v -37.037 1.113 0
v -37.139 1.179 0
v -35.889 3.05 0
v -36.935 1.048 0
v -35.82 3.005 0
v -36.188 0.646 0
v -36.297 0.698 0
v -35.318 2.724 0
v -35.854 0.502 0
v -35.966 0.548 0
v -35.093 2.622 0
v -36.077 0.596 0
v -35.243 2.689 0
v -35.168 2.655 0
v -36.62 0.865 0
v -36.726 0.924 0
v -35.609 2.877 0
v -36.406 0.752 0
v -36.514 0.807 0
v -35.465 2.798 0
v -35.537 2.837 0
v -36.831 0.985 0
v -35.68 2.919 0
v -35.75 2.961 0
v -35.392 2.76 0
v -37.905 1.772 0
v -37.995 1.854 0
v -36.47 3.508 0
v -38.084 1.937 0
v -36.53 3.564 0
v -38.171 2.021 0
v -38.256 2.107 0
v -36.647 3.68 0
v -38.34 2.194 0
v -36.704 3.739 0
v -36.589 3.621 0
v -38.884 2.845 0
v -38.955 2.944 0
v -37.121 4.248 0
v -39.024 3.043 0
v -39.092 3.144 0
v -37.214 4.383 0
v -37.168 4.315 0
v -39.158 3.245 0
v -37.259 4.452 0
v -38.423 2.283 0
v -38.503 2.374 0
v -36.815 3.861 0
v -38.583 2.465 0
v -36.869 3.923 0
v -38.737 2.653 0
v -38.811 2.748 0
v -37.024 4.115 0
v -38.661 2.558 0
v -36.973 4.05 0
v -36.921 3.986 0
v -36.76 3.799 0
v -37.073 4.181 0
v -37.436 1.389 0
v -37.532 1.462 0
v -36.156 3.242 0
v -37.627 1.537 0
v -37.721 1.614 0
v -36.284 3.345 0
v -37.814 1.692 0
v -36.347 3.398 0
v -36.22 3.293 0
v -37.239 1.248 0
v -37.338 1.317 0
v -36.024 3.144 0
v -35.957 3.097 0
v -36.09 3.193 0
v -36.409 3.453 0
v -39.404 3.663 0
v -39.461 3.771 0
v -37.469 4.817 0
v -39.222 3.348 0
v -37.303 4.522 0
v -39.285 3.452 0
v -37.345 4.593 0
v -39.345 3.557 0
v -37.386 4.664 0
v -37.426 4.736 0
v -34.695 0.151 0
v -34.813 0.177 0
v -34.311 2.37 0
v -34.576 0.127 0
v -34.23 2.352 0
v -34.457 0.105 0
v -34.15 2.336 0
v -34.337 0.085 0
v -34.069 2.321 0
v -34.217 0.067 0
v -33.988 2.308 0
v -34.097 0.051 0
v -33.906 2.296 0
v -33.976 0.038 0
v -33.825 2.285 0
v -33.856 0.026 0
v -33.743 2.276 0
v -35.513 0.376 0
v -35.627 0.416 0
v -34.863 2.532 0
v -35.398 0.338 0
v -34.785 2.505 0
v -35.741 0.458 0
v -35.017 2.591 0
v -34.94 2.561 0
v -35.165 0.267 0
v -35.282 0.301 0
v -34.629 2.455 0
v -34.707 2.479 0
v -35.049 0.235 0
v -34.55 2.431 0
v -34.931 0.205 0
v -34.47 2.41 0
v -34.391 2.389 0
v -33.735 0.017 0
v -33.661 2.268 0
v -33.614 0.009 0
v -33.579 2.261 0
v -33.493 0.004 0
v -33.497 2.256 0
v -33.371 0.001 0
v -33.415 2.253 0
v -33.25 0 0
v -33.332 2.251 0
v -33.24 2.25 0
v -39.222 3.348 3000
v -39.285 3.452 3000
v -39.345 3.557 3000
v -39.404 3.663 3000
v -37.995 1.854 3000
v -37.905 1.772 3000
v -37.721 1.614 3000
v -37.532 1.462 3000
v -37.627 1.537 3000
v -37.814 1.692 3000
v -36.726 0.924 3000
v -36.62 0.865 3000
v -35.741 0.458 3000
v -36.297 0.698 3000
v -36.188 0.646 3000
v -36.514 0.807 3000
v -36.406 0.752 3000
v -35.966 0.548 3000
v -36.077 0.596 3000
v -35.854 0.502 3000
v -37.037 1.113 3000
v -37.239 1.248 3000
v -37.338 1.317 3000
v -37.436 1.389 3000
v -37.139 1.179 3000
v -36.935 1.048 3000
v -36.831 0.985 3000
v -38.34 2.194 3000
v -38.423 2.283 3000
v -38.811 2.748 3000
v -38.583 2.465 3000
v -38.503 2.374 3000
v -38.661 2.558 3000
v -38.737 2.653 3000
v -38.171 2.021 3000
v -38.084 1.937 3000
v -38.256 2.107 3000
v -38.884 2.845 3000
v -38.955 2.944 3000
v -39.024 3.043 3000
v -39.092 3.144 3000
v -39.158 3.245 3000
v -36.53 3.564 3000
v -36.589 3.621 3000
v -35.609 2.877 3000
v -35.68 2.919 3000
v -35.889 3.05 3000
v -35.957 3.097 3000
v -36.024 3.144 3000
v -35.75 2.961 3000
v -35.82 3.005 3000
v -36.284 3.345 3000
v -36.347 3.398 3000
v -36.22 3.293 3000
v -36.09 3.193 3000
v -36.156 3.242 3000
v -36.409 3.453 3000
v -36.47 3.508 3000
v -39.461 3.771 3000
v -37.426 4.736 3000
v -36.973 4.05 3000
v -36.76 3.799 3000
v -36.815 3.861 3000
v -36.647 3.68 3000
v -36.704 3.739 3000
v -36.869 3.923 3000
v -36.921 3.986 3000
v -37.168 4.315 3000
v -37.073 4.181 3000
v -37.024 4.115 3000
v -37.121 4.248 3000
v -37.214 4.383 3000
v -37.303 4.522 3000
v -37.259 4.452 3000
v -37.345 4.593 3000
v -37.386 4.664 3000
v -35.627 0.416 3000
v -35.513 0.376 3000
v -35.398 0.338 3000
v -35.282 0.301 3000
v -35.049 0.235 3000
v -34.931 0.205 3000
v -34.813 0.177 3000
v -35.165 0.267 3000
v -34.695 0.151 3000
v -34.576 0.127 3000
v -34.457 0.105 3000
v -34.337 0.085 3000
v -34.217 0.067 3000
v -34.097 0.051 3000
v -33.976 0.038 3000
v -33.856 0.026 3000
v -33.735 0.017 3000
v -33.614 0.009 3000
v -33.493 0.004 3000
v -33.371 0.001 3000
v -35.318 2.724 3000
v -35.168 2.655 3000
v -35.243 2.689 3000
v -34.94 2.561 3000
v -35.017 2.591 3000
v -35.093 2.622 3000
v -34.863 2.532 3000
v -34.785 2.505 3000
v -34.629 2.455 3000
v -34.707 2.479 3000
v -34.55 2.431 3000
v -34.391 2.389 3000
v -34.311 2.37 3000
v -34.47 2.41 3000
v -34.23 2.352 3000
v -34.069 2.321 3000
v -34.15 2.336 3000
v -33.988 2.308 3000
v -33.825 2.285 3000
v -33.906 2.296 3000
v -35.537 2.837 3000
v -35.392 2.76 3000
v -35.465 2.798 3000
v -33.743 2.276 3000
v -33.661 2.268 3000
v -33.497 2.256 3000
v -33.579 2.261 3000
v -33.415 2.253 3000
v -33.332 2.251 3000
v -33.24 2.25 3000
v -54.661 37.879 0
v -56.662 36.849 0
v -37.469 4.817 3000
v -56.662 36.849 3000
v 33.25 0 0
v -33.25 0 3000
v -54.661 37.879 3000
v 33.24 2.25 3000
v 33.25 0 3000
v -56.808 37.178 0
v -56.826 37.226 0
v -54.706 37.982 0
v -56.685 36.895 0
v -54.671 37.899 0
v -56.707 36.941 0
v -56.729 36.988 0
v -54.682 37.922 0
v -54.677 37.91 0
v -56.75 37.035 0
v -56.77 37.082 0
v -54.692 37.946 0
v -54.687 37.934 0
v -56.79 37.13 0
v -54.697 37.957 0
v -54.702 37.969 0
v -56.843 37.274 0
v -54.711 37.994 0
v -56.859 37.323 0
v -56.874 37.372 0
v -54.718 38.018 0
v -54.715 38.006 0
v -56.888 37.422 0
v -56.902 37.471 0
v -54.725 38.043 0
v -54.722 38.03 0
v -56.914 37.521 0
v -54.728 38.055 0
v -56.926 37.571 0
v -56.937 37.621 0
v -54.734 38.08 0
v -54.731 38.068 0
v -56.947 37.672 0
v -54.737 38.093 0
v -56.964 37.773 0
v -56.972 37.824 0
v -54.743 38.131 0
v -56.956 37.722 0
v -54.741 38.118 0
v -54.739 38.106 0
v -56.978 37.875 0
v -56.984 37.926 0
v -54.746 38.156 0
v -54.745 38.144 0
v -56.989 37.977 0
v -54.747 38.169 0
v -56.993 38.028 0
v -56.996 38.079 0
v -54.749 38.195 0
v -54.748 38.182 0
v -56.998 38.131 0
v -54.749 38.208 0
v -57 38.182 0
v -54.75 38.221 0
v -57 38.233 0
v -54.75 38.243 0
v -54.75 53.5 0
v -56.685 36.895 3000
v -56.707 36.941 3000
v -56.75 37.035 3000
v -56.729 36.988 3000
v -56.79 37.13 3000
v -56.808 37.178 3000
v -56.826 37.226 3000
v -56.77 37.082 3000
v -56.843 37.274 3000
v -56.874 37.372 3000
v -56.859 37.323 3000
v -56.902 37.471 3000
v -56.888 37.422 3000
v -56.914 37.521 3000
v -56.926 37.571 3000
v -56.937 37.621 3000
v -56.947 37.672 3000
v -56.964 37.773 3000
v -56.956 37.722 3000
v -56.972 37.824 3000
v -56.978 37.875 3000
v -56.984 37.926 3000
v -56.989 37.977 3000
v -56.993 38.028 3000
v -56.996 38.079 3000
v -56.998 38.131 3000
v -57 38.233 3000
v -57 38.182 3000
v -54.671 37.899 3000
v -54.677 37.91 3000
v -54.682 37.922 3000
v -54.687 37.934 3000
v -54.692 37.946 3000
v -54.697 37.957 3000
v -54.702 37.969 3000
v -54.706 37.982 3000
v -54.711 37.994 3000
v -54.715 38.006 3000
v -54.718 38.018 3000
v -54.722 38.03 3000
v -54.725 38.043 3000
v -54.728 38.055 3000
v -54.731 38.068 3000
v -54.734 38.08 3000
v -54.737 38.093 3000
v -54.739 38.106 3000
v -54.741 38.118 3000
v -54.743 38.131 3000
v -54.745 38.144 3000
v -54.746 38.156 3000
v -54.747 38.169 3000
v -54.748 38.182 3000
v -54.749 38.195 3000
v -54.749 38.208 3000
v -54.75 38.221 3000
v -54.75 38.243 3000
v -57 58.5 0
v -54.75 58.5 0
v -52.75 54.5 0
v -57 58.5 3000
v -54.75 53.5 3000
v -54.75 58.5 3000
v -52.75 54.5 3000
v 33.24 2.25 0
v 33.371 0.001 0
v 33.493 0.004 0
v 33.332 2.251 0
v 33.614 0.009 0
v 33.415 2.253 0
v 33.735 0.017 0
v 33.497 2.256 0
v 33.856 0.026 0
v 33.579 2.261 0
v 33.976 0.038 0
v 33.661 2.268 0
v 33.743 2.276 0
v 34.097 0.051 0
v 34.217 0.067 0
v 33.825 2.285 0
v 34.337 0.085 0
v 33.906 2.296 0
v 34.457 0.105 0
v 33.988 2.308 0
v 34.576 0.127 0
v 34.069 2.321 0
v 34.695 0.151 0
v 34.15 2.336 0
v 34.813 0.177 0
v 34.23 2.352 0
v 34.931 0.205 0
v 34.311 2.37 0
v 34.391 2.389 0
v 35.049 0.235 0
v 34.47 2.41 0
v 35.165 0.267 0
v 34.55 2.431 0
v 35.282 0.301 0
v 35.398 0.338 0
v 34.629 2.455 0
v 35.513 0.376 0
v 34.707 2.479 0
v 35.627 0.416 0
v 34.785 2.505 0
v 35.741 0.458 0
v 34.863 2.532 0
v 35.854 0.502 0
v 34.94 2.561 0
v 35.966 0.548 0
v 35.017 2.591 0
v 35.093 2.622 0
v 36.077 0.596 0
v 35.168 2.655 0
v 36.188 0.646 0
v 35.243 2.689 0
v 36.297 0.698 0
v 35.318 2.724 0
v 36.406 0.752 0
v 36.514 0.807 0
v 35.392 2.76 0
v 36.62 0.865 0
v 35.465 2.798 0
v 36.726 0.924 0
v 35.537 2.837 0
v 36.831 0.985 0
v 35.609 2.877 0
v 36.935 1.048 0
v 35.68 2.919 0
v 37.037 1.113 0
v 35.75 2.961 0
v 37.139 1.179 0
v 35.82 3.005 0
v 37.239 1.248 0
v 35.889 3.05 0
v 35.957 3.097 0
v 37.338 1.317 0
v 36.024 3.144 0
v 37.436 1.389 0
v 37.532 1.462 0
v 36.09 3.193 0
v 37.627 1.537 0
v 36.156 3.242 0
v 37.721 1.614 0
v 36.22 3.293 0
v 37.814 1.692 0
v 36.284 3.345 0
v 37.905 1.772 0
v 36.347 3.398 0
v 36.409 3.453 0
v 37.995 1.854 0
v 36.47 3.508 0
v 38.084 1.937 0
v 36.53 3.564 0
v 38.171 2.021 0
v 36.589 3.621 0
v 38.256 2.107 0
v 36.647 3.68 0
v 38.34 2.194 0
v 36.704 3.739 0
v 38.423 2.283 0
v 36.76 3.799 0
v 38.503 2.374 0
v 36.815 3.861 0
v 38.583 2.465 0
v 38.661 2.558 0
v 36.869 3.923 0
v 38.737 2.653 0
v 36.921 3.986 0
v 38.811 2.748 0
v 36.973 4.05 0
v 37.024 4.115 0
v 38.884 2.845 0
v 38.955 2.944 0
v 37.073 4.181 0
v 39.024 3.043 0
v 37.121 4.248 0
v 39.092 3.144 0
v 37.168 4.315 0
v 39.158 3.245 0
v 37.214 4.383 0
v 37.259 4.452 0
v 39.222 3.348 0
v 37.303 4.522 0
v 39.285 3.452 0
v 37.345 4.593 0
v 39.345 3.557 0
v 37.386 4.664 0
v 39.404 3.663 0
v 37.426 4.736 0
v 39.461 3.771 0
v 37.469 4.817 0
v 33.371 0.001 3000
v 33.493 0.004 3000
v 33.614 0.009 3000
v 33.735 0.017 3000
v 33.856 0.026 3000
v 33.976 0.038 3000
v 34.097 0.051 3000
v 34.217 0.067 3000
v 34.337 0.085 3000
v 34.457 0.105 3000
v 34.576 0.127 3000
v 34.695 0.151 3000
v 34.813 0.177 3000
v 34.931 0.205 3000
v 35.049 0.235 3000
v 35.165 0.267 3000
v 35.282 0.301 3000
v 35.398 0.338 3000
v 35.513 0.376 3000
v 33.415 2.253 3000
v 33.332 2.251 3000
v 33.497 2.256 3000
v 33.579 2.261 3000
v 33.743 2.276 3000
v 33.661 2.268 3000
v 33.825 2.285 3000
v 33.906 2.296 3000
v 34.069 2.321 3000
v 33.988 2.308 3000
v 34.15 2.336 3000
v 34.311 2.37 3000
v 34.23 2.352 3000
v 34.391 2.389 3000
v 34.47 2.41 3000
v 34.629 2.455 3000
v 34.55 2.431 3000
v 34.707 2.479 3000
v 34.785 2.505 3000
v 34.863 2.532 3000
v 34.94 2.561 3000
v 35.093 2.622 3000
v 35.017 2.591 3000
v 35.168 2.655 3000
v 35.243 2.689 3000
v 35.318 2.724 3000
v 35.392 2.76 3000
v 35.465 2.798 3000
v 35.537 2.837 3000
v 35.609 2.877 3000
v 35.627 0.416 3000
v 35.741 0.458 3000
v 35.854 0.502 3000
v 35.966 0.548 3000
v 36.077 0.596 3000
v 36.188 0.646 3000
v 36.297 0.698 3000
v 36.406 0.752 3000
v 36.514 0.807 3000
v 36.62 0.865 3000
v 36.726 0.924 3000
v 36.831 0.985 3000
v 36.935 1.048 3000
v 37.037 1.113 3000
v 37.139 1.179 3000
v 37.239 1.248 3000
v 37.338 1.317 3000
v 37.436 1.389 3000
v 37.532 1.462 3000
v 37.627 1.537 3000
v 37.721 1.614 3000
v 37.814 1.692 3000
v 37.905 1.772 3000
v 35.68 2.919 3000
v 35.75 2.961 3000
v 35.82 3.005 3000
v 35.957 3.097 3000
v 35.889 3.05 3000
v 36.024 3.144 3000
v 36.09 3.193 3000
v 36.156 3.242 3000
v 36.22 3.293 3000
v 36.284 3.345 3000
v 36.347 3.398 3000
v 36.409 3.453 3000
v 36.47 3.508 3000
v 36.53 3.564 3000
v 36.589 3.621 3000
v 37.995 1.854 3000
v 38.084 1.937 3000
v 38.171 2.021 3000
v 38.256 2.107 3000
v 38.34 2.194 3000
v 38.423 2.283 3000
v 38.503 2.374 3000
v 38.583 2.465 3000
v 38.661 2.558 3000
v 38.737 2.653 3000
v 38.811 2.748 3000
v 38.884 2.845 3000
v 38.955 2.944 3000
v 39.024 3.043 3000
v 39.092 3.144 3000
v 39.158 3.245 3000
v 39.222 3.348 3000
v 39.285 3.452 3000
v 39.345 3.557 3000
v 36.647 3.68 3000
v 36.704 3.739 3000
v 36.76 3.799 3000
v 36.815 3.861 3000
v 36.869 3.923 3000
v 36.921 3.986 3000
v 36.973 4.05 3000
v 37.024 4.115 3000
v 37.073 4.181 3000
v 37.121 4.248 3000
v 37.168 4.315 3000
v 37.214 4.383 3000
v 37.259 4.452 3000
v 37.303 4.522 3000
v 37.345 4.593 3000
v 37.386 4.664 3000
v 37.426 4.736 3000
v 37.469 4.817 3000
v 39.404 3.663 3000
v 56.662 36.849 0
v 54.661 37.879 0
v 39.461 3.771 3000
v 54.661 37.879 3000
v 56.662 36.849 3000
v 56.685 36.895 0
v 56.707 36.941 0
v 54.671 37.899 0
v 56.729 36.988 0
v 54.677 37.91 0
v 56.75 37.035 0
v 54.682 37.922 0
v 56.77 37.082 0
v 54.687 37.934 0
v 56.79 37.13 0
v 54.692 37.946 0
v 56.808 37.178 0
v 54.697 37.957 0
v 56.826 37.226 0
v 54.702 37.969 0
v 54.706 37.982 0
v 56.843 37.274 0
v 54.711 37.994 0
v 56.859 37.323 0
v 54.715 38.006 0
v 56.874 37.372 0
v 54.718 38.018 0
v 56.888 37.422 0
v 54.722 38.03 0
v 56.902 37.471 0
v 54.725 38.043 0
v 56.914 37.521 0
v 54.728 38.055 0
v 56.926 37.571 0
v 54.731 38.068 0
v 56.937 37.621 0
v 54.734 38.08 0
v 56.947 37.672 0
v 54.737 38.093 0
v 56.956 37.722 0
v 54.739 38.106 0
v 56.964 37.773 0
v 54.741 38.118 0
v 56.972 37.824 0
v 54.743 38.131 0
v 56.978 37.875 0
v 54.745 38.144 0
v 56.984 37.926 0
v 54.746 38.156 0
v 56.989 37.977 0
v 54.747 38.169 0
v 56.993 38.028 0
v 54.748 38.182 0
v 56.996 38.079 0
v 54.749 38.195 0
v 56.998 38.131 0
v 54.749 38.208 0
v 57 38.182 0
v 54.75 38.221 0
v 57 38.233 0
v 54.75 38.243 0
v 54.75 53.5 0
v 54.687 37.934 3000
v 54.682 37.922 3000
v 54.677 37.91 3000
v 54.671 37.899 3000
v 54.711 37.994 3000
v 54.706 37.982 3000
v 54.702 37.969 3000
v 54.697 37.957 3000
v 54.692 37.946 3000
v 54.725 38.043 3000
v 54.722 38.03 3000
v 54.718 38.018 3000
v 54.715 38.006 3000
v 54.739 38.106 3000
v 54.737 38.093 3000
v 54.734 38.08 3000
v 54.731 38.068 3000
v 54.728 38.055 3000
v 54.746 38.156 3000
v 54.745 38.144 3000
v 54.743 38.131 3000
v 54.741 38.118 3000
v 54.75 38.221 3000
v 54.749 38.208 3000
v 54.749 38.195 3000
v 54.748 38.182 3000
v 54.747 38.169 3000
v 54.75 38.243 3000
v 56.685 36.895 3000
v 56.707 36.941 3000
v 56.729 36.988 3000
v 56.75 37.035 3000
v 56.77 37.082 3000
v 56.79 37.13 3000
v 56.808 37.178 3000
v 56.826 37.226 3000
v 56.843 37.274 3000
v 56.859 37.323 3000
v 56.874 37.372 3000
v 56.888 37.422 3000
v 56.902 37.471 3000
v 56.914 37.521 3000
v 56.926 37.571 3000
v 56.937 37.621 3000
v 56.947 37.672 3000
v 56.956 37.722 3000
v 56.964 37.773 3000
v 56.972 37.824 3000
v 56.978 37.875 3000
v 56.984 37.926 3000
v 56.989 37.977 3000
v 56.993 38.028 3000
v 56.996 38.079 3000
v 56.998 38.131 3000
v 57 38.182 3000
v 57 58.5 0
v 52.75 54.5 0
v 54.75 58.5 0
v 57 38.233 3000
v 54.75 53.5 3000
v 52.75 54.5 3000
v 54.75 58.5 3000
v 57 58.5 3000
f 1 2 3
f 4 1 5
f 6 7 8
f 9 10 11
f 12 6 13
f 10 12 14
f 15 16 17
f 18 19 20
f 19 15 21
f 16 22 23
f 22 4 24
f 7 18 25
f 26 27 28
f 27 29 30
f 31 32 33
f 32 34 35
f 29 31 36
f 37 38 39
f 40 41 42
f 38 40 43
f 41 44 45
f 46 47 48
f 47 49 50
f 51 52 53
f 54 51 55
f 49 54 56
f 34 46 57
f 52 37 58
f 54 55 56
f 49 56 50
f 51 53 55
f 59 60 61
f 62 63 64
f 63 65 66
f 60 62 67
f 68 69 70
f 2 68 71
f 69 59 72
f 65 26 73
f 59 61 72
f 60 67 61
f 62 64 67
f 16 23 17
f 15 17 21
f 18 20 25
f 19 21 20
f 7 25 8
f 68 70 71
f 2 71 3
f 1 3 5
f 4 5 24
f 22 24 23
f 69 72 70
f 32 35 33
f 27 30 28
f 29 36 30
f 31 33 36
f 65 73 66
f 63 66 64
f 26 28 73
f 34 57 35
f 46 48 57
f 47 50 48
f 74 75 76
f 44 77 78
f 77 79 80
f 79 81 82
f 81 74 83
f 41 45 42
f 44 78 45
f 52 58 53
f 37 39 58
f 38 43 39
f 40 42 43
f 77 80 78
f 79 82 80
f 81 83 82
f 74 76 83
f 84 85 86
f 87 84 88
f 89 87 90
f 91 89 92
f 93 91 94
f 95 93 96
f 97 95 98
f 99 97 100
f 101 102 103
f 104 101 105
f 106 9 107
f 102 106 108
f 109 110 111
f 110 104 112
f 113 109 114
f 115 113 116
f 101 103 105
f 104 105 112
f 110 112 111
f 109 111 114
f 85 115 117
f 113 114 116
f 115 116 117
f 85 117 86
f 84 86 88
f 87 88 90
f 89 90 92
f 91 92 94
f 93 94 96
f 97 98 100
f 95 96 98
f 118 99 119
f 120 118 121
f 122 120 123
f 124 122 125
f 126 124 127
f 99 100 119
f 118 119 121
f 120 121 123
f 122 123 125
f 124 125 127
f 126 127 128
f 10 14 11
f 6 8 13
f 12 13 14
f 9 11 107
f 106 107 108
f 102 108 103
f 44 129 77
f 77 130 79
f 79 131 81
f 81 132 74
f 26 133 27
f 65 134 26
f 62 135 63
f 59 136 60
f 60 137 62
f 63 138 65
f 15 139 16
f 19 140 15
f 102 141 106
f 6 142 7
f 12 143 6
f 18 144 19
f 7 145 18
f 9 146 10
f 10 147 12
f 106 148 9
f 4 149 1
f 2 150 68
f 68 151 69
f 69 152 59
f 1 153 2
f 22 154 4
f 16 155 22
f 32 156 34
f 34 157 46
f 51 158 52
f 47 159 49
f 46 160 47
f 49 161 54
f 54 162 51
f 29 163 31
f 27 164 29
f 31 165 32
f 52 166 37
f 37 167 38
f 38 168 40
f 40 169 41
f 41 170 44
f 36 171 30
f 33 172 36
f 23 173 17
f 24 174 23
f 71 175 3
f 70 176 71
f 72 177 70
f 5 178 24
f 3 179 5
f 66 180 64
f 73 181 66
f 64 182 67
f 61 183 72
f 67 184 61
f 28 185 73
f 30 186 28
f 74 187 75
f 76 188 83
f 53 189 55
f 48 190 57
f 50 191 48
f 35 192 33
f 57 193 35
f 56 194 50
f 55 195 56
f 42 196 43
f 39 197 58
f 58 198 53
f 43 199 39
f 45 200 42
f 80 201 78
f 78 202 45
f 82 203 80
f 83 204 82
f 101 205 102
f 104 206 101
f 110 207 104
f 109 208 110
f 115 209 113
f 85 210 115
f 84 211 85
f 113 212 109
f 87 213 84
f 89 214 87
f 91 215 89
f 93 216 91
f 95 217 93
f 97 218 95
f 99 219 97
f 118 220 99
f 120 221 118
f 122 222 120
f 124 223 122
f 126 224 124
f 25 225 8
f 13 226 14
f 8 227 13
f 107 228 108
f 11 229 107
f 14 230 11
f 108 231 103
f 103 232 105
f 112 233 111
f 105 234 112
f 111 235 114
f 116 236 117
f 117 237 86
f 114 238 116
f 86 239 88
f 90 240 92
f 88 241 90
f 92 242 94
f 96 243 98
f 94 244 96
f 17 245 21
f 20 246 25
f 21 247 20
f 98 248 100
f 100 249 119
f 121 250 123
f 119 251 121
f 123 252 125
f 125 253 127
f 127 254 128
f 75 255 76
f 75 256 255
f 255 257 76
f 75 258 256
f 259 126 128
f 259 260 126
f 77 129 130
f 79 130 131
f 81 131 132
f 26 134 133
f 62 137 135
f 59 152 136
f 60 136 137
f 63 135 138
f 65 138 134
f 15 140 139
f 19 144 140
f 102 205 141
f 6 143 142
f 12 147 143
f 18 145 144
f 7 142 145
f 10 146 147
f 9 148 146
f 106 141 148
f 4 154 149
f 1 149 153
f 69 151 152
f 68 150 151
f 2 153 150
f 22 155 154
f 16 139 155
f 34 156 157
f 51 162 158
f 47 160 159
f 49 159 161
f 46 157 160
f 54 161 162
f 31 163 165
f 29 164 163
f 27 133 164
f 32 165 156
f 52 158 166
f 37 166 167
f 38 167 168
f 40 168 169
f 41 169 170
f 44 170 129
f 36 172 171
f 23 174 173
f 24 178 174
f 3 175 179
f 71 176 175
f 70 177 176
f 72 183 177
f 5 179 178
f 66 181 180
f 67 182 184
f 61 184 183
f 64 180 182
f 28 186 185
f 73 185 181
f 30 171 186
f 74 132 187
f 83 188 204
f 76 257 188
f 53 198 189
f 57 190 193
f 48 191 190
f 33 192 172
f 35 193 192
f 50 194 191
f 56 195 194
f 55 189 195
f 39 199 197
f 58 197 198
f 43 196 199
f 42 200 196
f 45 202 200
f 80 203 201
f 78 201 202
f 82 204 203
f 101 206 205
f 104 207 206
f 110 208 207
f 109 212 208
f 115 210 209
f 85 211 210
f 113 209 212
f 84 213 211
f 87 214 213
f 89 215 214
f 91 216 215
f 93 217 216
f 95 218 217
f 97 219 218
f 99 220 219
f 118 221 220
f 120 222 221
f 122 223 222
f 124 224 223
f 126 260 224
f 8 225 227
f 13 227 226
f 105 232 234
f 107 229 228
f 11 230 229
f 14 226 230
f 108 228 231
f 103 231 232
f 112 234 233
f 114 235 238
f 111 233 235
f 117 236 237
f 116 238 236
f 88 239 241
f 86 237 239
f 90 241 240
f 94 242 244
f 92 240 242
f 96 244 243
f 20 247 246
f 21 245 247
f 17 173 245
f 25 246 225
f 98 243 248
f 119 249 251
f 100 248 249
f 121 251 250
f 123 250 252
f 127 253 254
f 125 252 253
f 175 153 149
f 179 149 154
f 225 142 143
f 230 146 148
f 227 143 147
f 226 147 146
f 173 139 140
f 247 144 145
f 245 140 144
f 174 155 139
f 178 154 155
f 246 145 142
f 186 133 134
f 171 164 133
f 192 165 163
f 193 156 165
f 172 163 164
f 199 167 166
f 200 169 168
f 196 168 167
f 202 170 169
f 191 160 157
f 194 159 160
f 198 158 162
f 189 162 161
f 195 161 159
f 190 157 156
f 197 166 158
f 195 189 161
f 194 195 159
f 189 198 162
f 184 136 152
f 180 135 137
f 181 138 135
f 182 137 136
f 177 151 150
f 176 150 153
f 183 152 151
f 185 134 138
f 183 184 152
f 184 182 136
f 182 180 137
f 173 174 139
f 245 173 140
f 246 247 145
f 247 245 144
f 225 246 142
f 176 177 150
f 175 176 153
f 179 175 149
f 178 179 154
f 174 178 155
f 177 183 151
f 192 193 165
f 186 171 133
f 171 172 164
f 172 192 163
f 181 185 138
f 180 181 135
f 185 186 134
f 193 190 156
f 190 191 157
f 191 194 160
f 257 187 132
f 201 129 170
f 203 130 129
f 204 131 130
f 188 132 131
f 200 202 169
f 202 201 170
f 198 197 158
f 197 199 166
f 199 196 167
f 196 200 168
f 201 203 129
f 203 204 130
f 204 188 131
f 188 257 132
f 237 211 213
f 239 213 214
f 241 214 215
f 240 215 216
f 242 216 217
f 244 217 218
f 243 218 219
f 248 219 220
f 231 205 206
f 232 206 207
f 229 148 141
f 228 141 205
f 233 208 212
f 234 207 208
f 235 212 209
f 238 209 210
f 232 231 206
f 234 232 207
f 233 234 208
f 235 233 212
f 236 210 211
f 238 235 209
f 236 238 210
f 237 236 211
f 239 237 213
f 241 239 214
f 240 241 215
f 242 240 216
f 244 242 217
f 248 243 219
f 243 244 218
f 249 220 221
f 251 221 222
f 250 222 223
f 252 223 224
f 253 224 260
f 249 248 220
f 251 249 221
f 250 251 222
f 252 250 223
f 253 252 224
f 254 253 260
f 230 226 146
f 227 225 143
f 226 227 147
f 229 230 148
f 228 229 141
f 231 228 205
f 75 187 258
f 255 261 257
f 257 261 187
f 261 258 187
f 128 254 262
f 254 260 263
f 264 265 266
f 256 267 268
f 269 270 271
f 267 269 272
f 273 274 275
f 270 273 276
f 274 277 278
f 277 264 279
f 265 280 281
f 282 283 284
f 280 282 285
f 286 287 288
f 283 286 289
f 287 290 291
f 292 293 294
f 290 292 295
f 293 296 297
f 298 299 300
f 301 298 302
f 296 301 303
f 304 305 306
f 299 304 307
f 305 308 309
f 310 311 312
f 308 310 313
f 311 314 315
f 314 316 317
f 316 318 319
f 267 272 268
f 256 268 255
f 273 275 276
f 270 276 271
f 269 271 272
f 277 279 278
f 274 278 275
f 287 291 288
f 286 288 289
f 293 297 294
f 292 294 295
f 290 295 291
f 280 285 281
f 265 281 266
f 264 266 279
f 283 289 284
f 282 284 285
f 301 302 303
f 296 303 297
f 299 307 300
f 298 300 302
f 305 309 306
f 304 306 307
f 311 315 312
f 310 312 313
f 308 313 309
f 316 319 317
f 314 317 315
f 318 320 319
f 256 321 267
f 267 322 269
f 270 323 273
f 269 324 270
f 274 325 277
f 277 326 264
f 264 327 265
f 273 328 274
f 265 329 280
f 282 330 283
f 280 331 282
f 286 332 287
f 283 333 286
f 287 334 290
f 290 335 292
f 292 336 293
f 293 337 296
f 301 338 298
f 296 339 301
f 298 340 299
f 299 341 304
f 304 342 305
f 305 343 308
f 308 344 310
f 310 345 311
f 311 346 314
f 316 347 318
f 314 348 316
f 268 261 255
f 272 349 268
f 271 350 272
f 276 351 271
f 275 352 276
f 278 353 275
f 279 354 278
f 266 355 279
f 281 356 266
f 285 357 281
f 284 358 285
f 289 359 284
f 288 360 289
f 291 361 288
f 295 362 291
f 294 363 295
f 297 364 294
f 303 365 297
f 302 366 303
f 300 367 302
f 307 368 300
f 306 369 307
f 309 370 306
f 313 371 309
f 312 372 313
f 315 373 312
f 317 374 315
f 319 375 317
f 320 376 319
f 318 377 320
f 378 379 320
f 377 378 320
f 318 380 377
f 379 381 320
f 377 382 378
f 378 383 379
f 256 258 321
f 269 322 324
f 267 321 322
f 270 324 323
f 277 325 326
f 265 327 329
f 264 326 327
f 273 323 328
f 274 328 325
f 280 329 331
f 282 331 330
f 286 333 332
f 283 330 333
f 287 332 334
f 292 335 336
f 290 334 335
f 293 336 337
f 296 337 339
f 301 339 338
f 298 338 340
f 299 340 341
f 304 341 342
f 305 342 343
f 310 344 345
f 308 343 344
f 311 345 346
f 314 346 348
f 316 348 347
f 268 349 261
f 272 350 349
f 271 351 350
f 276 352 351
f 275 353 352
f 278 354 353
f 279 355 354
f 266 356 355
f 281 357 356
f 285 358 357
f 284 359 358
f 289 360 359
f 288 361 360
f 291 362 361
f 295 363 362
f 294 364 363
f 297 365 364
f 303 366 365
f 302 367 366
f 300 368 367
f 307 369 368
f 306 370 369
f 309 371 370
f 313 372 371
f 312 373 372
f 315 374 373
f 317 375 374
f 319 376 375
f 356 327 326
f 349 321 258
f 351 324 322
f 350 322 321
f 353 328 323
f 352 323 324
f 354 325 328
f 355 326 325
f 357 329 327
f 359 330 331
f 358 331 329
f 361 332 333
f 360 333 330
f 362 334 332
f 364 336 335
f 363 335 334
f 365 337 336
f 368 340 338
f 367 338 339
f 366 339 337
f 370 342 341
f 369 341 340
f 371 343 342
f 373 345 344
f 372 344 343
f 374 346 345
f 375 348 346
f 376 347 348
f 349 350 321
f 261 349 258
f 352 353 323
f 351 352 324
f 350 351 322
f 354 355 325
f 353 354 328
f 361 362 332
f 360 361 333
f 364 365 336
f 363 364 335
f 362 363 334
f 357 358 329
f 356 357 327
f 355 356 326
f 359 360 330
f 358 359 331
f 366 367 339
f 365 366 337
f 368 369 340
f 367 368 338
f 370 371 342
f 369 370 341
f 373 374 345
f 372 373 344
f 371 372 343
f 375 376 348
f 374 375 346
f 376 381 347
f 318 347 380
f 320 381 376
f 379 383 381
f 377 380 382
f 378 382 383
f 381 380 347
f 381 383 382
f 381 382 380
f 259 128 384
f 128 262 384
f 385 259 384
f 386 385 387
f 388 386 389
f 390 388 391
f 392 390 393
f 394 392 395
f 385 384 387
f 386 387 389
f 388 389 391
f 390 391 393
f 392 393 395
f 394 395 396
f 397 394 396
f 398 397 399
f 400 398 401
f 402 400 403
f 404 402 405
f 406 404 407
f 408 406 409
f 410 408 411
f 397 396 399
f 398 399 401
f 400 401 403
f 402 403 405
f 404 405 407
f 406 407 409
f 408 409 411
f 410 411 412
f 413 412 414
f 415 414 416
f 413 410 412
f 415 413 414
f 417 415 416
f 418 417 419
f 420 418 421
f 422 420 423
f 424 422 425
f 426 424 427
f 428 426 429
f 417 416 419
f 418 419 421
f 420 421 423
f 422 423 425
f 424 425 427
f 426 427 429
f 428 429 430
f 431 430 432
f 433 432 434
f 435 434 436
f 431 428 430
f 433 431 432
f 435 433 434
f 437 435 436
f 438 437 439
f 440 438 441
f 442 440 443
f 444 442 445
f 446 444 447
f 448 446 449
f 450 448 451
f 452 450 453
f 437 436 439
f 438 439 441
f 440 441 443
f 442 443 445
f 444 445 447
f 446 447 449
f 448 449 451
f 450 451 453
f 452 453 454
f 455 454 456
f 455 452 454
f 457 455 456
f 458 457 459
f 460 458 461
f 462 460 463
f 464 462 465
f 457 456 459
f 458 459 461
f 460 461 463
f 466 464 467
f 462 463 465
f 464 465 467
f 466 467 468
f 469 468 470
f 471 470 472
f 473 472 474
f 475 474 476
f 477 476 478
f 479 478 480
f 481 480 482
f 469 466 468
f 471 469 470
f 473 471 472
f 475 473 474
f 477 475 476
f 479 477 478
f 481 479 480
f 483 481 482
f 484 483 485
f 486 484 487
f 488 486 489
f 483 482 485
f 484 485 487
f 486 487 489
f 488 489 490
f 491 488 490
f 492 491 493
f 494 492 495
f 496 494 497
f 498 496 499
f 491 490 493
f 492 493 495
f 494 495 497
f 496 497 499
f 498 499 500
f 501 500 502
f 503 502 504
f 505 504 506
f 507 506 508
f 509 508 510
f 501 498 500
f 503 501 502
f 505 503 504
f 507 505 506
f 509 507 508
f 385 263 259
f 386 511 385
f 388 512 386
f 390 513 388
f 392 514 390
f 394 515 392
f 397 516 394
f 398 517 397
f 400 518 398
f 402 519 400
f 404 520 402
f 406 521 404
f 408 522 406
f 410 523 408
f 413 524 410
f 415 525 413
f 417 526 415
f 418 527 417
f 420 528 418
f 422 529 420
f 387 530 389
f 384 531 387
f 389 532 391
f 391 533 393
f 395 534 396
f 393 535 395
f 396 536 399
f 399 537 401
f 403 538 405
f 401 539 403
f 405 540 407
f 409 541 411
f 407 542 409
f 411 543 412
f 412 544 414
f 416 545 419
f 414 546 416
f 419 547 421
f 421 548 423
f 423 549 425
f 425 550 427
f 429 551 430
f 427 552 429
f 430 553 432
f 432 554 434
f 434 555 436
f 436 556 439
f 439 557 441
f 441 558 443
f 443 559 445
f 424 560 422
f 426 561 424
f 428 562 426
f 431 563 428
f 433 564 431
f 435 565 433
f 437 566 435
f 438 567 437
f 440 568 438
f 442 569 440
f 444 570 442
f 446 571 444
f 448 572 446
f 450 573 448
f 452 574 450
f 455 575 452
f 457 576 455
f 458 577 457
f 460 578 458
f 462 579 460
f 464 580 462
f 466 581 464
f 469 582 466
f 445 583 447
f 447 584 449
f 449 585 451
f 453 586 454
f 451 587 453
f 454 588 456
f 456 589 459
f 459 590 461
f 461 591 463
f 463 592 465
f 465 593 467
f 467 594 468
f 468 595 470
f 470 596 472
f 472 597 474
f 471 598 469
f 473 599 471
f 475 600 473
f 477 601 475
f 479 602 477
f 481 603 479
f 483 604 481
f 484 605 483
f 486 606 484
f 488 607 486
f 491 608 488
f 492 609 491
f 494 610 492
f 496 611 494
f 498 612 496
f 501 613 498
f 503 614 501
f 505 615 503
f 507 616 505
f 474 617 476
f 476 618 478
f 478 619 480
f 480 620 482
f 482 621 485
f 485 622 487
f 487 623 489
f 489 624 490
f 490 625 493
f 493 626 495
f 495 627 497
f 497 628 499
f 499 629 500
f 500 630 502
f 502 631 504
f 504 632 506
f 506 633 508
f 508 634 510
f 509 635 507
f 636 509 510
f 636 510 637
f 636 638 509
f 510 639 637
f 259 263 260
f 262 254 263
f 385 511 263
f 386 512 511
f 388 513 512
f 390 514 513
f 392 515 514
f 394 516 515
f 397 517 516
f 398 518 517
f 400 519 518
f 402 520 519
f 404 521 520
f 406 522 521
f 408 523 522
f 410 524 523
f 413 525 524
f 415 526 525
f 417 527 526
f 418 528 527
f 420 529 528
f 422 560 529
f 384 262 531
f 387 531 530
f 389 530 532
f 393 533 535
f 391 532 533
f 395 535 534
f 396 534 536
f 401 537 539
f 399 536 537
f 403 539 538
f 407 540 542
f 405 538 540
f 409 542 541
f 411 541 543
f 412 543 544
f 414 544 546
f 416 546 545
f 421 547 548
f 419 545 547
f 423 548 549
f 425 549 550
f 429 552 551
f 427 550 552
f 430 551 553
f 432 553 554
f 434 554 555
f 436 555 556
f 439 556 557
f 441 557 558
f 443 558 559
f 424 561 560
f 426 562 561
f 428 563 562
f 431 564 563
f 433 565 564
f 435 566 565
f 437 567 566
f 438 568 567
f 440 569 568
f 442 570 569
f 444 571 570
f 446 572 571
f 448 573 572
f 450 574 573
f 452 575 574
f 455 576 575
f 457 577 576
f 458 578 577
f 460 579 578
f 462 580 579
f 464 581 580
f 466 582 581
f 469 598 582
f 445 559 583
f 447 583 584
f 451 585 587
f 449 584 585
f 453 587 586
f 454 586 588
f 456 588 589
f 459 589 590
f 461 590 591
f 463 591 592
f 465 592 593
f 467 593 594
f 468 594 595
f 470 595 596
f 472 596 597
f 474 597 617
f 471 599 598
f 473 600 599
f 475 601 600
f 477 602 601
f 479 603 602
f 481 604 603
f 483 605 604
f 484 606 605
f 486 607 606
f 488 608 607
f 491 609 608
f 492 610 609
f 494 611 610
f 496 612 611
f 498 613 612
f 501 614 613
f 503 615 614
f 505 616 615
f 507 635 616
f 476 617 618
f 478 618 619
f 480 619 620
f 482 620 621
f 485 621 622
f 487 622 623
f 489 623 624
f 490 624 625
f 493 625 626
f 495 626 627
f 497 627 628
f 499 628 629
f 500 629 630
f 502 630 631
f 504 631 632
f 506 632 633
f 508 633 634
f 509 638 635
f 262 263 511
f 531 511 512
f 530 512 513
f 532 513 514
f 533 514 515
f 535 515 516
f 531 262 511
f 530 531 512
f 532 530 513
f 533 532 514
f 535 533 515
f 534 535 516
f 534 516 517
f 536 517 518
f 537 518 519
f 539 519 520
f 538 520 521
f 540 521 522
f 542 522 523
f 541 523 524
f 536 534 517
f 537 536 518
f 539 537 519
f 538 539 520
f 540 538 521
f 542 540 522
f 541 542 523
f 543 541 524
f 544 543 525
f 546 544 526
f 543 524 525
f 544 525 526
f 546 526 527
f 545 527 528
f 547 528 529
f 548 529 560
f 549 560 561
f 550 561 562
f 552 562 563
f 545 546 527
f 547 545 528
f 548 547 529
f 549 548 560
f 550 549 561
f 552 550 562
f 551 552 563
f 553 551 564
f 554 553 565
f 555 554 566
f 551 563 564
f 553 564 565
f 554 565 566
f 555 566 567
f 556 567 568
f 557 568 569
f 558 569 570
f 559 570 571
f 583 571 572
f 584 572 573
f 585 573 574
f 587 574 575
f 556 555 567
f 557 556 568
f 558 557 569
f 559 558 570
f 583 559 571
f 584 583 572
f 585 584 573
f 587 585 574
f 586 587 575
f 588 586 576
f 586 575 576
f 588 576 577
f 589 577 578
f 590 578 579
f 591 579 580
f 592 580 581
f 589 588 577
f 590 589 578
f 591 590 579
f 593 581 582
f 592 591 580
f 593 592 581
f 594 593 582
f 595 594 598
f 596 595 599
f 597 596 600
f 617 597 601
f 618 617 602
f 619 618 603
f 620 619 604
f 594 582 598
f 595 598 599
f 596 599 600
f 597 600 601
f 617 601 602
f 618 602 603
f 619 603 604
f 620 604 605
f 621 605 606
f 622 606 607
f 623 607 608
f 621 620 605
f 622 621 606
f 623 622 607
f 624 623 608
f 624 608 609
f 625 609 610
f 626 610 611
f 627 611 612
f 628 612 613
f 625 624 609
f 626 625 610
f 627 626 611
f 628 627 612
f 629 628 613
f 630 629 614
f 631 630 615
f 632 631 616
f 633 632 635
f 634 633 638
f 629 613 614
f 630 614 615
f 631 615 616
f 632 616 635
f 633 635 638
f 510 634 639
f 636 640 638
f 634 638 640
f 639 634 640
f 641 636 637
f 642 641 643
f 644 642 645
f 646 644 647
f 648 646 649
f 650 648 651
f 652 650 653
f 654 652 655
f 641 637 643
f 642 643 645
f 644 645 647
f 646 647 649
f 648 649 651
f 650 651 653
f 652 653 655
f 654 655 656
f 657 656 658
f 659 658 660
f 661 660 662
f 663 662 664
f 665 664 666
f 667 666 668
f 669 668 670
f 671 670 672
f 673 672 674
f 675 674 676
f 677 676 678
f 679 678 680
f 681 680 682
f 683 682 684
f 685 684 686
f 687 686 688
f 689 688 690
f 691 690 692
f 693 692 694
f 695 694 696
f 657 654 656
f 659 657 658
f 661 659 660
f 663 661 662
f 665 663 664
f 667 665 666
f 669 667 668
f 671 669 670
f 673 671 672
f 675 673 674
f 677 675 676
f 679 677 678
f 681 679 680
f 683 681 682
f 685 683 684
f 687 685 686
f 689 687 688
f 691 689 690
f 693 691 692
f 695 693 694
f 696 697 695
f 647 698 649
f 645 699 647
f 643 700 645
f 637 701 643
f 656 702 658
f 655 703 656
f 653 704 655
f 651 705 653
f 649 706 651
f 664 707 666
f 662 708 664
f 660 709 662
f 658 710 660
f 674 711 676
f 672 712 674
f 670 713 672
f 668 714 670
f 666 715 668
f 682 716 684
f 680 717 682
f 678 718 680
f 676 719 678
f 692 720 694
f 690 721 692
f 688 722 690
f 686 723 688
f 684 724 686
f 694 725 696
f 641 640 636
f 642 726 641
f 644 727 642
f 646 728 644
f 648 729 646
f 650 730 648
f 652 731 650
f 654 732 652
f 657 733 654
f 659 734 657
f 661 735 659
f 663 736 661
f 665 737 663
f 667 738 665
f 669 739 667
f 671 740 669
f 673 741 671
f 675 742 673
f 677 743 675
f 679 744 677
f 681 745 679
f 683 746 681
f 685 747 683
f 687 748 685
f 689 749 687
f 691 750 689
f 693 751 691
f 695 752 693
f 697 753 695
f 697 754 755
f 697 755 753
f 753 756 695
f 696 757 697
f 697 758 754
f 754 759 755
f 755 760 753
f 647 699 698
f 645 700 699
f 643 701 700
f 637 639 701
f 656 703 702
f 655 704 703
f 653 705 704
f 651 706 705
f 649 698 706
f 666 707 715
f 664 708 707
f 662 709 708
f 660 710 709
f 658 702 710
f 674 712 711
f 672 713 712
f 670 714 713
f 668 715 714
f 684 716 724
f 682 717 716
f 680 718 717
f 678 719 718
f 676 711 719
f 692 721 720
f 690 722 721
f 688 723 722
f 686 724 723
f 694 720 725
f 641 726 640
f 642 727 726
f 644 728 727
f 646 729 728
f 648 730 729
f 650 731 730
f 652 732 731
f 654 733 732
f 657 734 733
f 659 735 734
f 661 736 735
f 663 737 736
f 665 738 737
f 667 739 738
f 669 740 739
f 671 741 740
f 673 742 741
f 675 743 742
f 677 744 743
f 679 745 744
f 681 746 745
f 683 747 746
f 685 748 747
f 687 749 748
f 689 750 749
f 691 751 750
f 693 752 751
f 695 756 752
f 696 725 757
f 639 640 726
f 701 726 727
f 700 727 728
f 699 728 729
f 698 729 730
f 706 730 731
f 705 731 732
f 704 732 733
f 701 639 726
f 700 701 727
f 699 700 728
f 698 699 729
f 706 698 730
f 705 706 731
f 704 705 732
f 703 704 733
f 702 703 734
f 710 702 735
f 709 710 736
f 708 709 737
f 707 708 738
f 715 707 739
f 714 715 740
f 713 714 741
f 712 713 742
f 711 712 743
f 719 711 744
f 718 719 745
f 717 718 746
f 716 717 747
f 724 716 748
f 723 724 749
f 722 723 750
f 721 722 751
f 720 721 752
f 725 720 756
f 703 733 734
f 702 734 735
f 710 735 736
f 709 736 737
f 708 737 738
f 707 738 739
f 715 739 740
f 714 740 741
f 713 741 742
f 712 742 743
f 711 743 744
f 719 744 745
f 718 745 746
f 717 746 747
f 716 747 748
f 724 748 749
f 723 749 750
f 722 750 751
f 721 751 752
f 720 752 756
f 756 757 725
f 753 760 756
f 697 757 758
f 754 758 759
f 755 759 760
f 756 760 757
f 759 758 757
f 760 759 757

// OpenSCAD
$fn = 50;

difference() {
	union() {
		linear_extrude(height = 3000.0) {
			polygon(points = [[56.9995601, 38.1820114], [56.9982404, 38.1306519], [56.9960415, 38.0793225], [56.9929638, 38.0280383], [56.9890084, 37.9768144], [56.9841763, 37.9256657], [56.978469, 37.8746072], [56.9718882, 37.823654], [56.9644358, 37.7728209], [56.956114, 37.7221229], [56.9469252, 37.6715749], [56.9368722, 37.6211916], [56.9259578, 37.5709879], [56.9141852, 37.5209784], [56.901558, 37.4711779], [56.8880798, 37.4216009], [56.8737546, 37.372262], [56.8585866, 37.3231757], [56.8425802, 37.2743563], [56.8257401, 37.2258182], [56.8080713, 37.1775755], [56.7895789, 37.1296426], [56.7702684, 37.0820333], [56.7501454, 37.0347617], [56.7292159, 36.9878416], [56.7074859, 36.9412868], [56.6849619, 36.895111], [56.6616504, 36.8493277], [39.460676, 3.7705308], [39.4038067, 3.663443], [39.3450911, 3.5573563], [39.2845467, 3.4523025], [39.2221918, 3.3483131], [39.158045, 3.2454194], [39.0921257, 3.1436522], [39.0244535, 3.043042], [38.9550488, 2.9436191], [38.8839324, 2.8454133], [38.8111257, 2.748454], [38.7366505, 2.6527704], [38.660529, 2.5583911], [38.5827843, 2.4653444], [38.5034396, 2.3736583], [38.4225187, 2.2833604], [38.3400458, 2.1944775], [38.2560458, 2.1070366], [38.1705439, 2.0210637], [38.0835656, 1.9365846], [37.9951371, 1.8536249], [37.905285, 1.7722092], [37.8140361, 1.692362], [37.7214179, 1.6141074], [37.6274581, 1.5374687], [37.532185, 1.4624691], [37.435627, 1.3891309], [37.3378133, 1.3174761], [37.2387731, 1.2475264], [37.1385362, 1.1793026], [37.0371326, 1.1128253], [36.9345928, 1.0481143], [36.8309475, 0.9851892], [36.7262278, 0.9240687], [36.6204652, 0.8647712], [36.5136914, 0.8073146], [36.4059383, 0.751716], [36.2972384, 0.6979921], [36.1876243, 0.6461591], [36.0771288, 0.5962325], [35.9657851, 0.5482272], [35.8536266, 0.5021578], [35.7406869, 0.4580379], [35.627, 0.4158809], [35.5126, 0.3756994], [35.3975211, 0.3375055], [35.2817979, 0.3013105], [35.1654652, 0.2671254], [35.0485578, 0.2349605], [34.9311108, 0.2048253], [34.8131595, 0.176729], [34.6947392, 0.1506799], [34.5758855, 0.1266858], [34.456634, 0.104754], [34.3370205, 0.0848911], [34.2170809, 0.067103], [34.0968512, 0.051395], [33.9763674, 0.0377719], [33.8556658, 0.0262377], [33.7347825, 0.0167959], [33.6137537, 0.0094493], [33.4926159, 0.0042002], [33.3714054, 0.0010501], [33.2501584, 0.0], [-33.2501584, 0.0], [-33.3714054, 0.0010501], [-33.4926159, 0.0042002], [-33.6137537, 0.0094493], [-33.7347825, 0.0167959], [-33.8556658, 0.0262377], [-33.9763674, 0.0377719], [-34.0968512, 0.051395], [-34.2170809, 0.067103], [-34.3370205, 0.0848911], [-34.456634, 0.104754], [-34.5758855, 0.1266858], [-34.6947392, 0.1506799], [-34.8131595, 0.176729], [-34.9311108, 0.2048253], [-35.0485578, 0.2349605], [-35.1654652, 0.2671254], [-35.2817979, 0.3013105], [-35.3975211, 0.3375055], [-35.5126, 0.3756994], [-35.627, 0.4158809], [-35.7406869, 0.4580379], [-35.8536266, 0.5021578], [-35.9657851, 0.5482272], [-36.0771288, 0.5962325], [-36.1876243, 0.6461591], [-36.2972384, 0.6979921], [-36.4059383, 0.751716], [-36.5136914, 0.8073146], [-36.6204652, 0.8647712], [-36.7262278, 0.9240687], [-36.8309475, 0.9851892], [-36.9345928, 1.0481143], [-37.0371326, 1.1128253], [-37.1385362, 1.1793026], [-37.2387731, 1.2475264], [-37.3378133, 1.3174761], [-37.435627, 1.3891309], [-37.532185, 1.4624691], [-37.6274581, 1.5374687], [-37.7214179, 1.6141074], [-37.8140361, 1.692362], [-37.905285, 1.7722092], [-37.9951371, 1.8536249], [-38.0835656, 1.9365846], [-38.1705439, 2.0210637], [-38.2560458, 2.1070366], [-38.3400458, 2.1944775], [-38.4225187, 2.2833604], [-38.5034396, 2.3736583], [-38.5827843, 2.4653444], [-38.660529, 2.5583911], [-38.7366505, 2.6527704], [-38.8111257, 2.748454], [-38.8839324, 2.8454133], [-38.9550488, 2.9436191], [-39.0244535, 3.043042], [-39.0921257, 3.1436522], [-39.158045, 3.2454194], [-39.2221918, 3.3483131], [-39.2845467, 3.4523025], [-39.3450911, 3.5573563], [-39.4038067, 3.663443], [-39.460676, 3.7705308], [-56.6616504, 36.8493277], [-56.6849619, 36.895111], [-56.7074859, 36.9412868], [-56.7292159, 36.9878416], [-56.7501454, 37.0347617], [-56.7702684, 37.0820333], [-56.7895789, 37.1296426], [-56.8080713, 37.1775755], [-56.8257401, 37.2258182], [-56.8425802, 37.2743563], [-56.8585866, 37.3231757], [-56.8737546, 37.372262], [-56.8880798, 37.4216009], [-56.901558, 37.4711779], [-56.9141852, 37.5209784], [-56.9259578, 37.5709879], [-56.9368722, 37.6211916], [-56.9469252, 37.6715749], [-56.956114, 37.7221229], [-56.9644358, 37.7728209], [-56.9718882, 37.823654], [-56.978469, 37.8746072], [-56.9841763, 37.9256657], [-56.9890084, 37.9768144], [-56.9929638, 38.0280383], [-56.9960415, 38.0793225], [-56.9982404, 38.1306519], [-56.9995601, 38.1820114], [-57.0, 38.2333859], [-57.0, 58.5], [-54.75, 58.5], [-52.75, 54.5], [-54.75, 53.5], [-54.75, 38.2430192], [-54.7498075, 38.2205437], [-54.7494777, 38.2077052], [-54.748928, 38.1948743], [-54.7481587, 38.1820547], [-54.7471699, 38.1692501], [-54.745962, 38.1564643], [-54.7445354, 38.1437011], [-54.7428903, 38.1309642], [-54.7410275, 38.1182573], [-54.7389472, 38.1055842], [-54.7366503, 38.0929486], [-54.7341373, 38.0803542], [-54.731409, 38.0678046], [-54.7284662, 38.0553036], [-54.7253097, 38.0428549], [-54.7219405, 38.030462], [-54.7183596, 38.0181286], [-54.714568, 38.0058584], [-54.7105669, 37.9936549], [-54.7063573, 37.9815217], [-54.7019406, 37.9694623], [-54.697318, 37.9574804], [-54.6924909, 37.9455794], [-54.6874607, 37.9337628], [-54.6822289, 37.9220341], [-54.676797, 37.9103967], [-54.6711666, 37.898854], [-54.6609683, 37.8788246], [-37.4689335, 4.8172192], [-37.4257742, 4.735948], [-37.3859321, 4.6639618], [-37.3448492, 4.5926766], [-37.3025377, 4.5221136], [-37.2590103, 4.4522941], [-37.2142801, 4.383239], [-37.1683605, 4.3149691], [-37.1212653, 4.2475048], [-37.0730086, 4.1808663], [-37.0236049, 4.1150736], [-36.973069, 4.0501466], [-36.9214161, 3.9861046], [-36.8686617, 3.922967], [-36.8148216, 3.8607525], [-36.7599119, 3.79948], [-36.7039492, 3.7391677], [-36.6469503, 3.6798338], [-36.5889321, 3.6214961], [-36.5299122, 3.5641721], [-36.4699082, 3.5078789], [-36.4089382, 3.4526335], [-36.3470204, 3.3984525], [-36.2841734, 3.3453521], [-36.2204161, 3.2933482], [-36.1557677, 3.2424565], [-36.0902474, 3.1926922], [-36.023875, 3.1440702], [-35.9566703, 3.0966051], [-35.8886536, 3.0503112], [-35.8198453, 3.0052024], [-35.7502659, 2.9612922], [-35.6799364, 2.9185937], [-35.6088779, 2.8771199], [-35.5371117, 2.836883], [-35.4646593, 2.7978953], [-35.3915424, 2.7601683], [-35.3177831, 2.7237135], [-35.2434034, 2.6885417], [-35.1684256, 2.6546635], [-35.0928723, 2.6220891], [-35.0167661, 2.5908282], [-34.9401299, 2.5608903], [-34.8629866, 2.5322843], [-34.7853593, 2.5050187], [-34.7072715, 2.4791019], [-34.6287465, 2.4545415], [-34.5498078, 2.4313449], [-34.4704792, 2.409519], [-34.3907844, 2.3890705], [-34.3107475, 2.3700055], [-34.2303922, 2.3523296], [-34.1497429, 2.3360482], [-34.0688237, 2.3211662], [-33.9876589, 2.3076881], [-33.9062727, 2.2956178], [-33.8246897, 2.284959], [-33.7429343, 2.2757148], [-33.6610311, 2.2678882], [-33.5790046, 2.2614814], [-33.4968794, 2.2564963], [-33.4146802, 2.2529345], [-33.3324317, 2.250797], [-33.2404148, 2.25], [33.2404148, 2.25], [33.3324317, 2.250797], [33.4146802, 2.2529345], [33.4968794, 2.2564963], [33.5790046, 2.2614814], [33.6610311, 2.2678882], [33.7429343, 2.2757148], [33.8246897, 2.284959], [33.9062727, 2.2956178], [33.9876589, 2.3076881], [34.0688237, 2.3211662], [34.1497429, 2.3360482], [34.2303922, 2.3523296], [34.3107475, 2.3700055], [34.3907844, 2.3890705], [34.4704792, 2.409519], [34.5498078, 2.4313449], [34.6287465, 2.4545415], [34.7072715, 2.4791019], [34.7853593, 2.5050187], [34.8629866, 2.5322843], [34.9401299, 2.5608903], [35.0167661, 2.5908282], [35.0928723, 2.6220891], [35.1684256, 2.6546635], [35.2434034, 2.6885417], [35.3177831, 2.7237135], [35.3915424, 2.7601683], [35.4646593, 2.7978953], [35.5371117, 2.836883], [35.6088779, 2.8771199], [35.6799364, 2.9185937], [35.7502659, 2.9612922], [35.8198453, 3.0052024], [35.8886536, 3.0503112], [35.9566703, 3.0966051], [36.023875, 3.1440702], [36.0902474, 3.1926922], [36.1557677, 3.2424565], [36.2204161, 3.2933482], [36.2841734, 3.3453521], [36.3470204, 3.3984525], [36.4089382, 3.4526335], [36.4699082, 3.5078789], [36.5299122, 3.5641721], [36.5889321, 3.6214961], [36.6469503, 3.6798338], [36.7039492, 3.7391677], [36.7599119, 3.79948], [36.8148216, 3.8607525], [36.8686617, 3.922967], [36.9214161, 3.9861046], [36.973069, 4.0501466], [37.0236049, 4.1150736], [37.0730086, 4.1808663], [37.1212653, 4.2475048], [37.1683605, 4.3149691], [37.2142801, 4.383239], [37.2590103, 4.4522941], [37.3025377, 4.5221136], [37.3448492, 4.5926766], [37.3859321, 4.6639618], [37.4257742, 4.735948], [37.4689335, 4.8172192], [54.6609683, 37.8788246], [54.6711666, 37.898854], [54.676797, 37.9103967], [54.6822289, 37.9220341], [54.6874607, 37.9337628], [54.6924909, 37.9455794], [54.697318, 37.9574804], [54.7019406, 37.9694623], [54.7063573, 37.9815217], [54.7105669, 37.9936549], [54.714568, 38.0058584], [54.7183596, 38.0181286], [54.7219405, 38.030462], [54.7253097, 38.0428549], [54.7284662, 38.0553036], [54.731409, 38.0678046], [54.7341373, 38.0803542], [54.7366503, 38.0929486], [54.7389472, 38.1055842], [54.7410275, 38.1182573], [54.7428903, 38.1309642], [54.7445354, 38.1437011], [54.745962, 38.1564643], [54.7471699, 38.1692501], [54.7481587, 38.1820547], [54.748928, 38.1948743], [54.7494777, 38.2077052], [54.7498075, 38.2205437], [54.75, 38.2430192], [54.75, 53.5], [52.75, 54.5], [54.75, 58.5], [57.0, 58.5], [57.0, 38.2333859]]);
		}
	}
	union();
}
